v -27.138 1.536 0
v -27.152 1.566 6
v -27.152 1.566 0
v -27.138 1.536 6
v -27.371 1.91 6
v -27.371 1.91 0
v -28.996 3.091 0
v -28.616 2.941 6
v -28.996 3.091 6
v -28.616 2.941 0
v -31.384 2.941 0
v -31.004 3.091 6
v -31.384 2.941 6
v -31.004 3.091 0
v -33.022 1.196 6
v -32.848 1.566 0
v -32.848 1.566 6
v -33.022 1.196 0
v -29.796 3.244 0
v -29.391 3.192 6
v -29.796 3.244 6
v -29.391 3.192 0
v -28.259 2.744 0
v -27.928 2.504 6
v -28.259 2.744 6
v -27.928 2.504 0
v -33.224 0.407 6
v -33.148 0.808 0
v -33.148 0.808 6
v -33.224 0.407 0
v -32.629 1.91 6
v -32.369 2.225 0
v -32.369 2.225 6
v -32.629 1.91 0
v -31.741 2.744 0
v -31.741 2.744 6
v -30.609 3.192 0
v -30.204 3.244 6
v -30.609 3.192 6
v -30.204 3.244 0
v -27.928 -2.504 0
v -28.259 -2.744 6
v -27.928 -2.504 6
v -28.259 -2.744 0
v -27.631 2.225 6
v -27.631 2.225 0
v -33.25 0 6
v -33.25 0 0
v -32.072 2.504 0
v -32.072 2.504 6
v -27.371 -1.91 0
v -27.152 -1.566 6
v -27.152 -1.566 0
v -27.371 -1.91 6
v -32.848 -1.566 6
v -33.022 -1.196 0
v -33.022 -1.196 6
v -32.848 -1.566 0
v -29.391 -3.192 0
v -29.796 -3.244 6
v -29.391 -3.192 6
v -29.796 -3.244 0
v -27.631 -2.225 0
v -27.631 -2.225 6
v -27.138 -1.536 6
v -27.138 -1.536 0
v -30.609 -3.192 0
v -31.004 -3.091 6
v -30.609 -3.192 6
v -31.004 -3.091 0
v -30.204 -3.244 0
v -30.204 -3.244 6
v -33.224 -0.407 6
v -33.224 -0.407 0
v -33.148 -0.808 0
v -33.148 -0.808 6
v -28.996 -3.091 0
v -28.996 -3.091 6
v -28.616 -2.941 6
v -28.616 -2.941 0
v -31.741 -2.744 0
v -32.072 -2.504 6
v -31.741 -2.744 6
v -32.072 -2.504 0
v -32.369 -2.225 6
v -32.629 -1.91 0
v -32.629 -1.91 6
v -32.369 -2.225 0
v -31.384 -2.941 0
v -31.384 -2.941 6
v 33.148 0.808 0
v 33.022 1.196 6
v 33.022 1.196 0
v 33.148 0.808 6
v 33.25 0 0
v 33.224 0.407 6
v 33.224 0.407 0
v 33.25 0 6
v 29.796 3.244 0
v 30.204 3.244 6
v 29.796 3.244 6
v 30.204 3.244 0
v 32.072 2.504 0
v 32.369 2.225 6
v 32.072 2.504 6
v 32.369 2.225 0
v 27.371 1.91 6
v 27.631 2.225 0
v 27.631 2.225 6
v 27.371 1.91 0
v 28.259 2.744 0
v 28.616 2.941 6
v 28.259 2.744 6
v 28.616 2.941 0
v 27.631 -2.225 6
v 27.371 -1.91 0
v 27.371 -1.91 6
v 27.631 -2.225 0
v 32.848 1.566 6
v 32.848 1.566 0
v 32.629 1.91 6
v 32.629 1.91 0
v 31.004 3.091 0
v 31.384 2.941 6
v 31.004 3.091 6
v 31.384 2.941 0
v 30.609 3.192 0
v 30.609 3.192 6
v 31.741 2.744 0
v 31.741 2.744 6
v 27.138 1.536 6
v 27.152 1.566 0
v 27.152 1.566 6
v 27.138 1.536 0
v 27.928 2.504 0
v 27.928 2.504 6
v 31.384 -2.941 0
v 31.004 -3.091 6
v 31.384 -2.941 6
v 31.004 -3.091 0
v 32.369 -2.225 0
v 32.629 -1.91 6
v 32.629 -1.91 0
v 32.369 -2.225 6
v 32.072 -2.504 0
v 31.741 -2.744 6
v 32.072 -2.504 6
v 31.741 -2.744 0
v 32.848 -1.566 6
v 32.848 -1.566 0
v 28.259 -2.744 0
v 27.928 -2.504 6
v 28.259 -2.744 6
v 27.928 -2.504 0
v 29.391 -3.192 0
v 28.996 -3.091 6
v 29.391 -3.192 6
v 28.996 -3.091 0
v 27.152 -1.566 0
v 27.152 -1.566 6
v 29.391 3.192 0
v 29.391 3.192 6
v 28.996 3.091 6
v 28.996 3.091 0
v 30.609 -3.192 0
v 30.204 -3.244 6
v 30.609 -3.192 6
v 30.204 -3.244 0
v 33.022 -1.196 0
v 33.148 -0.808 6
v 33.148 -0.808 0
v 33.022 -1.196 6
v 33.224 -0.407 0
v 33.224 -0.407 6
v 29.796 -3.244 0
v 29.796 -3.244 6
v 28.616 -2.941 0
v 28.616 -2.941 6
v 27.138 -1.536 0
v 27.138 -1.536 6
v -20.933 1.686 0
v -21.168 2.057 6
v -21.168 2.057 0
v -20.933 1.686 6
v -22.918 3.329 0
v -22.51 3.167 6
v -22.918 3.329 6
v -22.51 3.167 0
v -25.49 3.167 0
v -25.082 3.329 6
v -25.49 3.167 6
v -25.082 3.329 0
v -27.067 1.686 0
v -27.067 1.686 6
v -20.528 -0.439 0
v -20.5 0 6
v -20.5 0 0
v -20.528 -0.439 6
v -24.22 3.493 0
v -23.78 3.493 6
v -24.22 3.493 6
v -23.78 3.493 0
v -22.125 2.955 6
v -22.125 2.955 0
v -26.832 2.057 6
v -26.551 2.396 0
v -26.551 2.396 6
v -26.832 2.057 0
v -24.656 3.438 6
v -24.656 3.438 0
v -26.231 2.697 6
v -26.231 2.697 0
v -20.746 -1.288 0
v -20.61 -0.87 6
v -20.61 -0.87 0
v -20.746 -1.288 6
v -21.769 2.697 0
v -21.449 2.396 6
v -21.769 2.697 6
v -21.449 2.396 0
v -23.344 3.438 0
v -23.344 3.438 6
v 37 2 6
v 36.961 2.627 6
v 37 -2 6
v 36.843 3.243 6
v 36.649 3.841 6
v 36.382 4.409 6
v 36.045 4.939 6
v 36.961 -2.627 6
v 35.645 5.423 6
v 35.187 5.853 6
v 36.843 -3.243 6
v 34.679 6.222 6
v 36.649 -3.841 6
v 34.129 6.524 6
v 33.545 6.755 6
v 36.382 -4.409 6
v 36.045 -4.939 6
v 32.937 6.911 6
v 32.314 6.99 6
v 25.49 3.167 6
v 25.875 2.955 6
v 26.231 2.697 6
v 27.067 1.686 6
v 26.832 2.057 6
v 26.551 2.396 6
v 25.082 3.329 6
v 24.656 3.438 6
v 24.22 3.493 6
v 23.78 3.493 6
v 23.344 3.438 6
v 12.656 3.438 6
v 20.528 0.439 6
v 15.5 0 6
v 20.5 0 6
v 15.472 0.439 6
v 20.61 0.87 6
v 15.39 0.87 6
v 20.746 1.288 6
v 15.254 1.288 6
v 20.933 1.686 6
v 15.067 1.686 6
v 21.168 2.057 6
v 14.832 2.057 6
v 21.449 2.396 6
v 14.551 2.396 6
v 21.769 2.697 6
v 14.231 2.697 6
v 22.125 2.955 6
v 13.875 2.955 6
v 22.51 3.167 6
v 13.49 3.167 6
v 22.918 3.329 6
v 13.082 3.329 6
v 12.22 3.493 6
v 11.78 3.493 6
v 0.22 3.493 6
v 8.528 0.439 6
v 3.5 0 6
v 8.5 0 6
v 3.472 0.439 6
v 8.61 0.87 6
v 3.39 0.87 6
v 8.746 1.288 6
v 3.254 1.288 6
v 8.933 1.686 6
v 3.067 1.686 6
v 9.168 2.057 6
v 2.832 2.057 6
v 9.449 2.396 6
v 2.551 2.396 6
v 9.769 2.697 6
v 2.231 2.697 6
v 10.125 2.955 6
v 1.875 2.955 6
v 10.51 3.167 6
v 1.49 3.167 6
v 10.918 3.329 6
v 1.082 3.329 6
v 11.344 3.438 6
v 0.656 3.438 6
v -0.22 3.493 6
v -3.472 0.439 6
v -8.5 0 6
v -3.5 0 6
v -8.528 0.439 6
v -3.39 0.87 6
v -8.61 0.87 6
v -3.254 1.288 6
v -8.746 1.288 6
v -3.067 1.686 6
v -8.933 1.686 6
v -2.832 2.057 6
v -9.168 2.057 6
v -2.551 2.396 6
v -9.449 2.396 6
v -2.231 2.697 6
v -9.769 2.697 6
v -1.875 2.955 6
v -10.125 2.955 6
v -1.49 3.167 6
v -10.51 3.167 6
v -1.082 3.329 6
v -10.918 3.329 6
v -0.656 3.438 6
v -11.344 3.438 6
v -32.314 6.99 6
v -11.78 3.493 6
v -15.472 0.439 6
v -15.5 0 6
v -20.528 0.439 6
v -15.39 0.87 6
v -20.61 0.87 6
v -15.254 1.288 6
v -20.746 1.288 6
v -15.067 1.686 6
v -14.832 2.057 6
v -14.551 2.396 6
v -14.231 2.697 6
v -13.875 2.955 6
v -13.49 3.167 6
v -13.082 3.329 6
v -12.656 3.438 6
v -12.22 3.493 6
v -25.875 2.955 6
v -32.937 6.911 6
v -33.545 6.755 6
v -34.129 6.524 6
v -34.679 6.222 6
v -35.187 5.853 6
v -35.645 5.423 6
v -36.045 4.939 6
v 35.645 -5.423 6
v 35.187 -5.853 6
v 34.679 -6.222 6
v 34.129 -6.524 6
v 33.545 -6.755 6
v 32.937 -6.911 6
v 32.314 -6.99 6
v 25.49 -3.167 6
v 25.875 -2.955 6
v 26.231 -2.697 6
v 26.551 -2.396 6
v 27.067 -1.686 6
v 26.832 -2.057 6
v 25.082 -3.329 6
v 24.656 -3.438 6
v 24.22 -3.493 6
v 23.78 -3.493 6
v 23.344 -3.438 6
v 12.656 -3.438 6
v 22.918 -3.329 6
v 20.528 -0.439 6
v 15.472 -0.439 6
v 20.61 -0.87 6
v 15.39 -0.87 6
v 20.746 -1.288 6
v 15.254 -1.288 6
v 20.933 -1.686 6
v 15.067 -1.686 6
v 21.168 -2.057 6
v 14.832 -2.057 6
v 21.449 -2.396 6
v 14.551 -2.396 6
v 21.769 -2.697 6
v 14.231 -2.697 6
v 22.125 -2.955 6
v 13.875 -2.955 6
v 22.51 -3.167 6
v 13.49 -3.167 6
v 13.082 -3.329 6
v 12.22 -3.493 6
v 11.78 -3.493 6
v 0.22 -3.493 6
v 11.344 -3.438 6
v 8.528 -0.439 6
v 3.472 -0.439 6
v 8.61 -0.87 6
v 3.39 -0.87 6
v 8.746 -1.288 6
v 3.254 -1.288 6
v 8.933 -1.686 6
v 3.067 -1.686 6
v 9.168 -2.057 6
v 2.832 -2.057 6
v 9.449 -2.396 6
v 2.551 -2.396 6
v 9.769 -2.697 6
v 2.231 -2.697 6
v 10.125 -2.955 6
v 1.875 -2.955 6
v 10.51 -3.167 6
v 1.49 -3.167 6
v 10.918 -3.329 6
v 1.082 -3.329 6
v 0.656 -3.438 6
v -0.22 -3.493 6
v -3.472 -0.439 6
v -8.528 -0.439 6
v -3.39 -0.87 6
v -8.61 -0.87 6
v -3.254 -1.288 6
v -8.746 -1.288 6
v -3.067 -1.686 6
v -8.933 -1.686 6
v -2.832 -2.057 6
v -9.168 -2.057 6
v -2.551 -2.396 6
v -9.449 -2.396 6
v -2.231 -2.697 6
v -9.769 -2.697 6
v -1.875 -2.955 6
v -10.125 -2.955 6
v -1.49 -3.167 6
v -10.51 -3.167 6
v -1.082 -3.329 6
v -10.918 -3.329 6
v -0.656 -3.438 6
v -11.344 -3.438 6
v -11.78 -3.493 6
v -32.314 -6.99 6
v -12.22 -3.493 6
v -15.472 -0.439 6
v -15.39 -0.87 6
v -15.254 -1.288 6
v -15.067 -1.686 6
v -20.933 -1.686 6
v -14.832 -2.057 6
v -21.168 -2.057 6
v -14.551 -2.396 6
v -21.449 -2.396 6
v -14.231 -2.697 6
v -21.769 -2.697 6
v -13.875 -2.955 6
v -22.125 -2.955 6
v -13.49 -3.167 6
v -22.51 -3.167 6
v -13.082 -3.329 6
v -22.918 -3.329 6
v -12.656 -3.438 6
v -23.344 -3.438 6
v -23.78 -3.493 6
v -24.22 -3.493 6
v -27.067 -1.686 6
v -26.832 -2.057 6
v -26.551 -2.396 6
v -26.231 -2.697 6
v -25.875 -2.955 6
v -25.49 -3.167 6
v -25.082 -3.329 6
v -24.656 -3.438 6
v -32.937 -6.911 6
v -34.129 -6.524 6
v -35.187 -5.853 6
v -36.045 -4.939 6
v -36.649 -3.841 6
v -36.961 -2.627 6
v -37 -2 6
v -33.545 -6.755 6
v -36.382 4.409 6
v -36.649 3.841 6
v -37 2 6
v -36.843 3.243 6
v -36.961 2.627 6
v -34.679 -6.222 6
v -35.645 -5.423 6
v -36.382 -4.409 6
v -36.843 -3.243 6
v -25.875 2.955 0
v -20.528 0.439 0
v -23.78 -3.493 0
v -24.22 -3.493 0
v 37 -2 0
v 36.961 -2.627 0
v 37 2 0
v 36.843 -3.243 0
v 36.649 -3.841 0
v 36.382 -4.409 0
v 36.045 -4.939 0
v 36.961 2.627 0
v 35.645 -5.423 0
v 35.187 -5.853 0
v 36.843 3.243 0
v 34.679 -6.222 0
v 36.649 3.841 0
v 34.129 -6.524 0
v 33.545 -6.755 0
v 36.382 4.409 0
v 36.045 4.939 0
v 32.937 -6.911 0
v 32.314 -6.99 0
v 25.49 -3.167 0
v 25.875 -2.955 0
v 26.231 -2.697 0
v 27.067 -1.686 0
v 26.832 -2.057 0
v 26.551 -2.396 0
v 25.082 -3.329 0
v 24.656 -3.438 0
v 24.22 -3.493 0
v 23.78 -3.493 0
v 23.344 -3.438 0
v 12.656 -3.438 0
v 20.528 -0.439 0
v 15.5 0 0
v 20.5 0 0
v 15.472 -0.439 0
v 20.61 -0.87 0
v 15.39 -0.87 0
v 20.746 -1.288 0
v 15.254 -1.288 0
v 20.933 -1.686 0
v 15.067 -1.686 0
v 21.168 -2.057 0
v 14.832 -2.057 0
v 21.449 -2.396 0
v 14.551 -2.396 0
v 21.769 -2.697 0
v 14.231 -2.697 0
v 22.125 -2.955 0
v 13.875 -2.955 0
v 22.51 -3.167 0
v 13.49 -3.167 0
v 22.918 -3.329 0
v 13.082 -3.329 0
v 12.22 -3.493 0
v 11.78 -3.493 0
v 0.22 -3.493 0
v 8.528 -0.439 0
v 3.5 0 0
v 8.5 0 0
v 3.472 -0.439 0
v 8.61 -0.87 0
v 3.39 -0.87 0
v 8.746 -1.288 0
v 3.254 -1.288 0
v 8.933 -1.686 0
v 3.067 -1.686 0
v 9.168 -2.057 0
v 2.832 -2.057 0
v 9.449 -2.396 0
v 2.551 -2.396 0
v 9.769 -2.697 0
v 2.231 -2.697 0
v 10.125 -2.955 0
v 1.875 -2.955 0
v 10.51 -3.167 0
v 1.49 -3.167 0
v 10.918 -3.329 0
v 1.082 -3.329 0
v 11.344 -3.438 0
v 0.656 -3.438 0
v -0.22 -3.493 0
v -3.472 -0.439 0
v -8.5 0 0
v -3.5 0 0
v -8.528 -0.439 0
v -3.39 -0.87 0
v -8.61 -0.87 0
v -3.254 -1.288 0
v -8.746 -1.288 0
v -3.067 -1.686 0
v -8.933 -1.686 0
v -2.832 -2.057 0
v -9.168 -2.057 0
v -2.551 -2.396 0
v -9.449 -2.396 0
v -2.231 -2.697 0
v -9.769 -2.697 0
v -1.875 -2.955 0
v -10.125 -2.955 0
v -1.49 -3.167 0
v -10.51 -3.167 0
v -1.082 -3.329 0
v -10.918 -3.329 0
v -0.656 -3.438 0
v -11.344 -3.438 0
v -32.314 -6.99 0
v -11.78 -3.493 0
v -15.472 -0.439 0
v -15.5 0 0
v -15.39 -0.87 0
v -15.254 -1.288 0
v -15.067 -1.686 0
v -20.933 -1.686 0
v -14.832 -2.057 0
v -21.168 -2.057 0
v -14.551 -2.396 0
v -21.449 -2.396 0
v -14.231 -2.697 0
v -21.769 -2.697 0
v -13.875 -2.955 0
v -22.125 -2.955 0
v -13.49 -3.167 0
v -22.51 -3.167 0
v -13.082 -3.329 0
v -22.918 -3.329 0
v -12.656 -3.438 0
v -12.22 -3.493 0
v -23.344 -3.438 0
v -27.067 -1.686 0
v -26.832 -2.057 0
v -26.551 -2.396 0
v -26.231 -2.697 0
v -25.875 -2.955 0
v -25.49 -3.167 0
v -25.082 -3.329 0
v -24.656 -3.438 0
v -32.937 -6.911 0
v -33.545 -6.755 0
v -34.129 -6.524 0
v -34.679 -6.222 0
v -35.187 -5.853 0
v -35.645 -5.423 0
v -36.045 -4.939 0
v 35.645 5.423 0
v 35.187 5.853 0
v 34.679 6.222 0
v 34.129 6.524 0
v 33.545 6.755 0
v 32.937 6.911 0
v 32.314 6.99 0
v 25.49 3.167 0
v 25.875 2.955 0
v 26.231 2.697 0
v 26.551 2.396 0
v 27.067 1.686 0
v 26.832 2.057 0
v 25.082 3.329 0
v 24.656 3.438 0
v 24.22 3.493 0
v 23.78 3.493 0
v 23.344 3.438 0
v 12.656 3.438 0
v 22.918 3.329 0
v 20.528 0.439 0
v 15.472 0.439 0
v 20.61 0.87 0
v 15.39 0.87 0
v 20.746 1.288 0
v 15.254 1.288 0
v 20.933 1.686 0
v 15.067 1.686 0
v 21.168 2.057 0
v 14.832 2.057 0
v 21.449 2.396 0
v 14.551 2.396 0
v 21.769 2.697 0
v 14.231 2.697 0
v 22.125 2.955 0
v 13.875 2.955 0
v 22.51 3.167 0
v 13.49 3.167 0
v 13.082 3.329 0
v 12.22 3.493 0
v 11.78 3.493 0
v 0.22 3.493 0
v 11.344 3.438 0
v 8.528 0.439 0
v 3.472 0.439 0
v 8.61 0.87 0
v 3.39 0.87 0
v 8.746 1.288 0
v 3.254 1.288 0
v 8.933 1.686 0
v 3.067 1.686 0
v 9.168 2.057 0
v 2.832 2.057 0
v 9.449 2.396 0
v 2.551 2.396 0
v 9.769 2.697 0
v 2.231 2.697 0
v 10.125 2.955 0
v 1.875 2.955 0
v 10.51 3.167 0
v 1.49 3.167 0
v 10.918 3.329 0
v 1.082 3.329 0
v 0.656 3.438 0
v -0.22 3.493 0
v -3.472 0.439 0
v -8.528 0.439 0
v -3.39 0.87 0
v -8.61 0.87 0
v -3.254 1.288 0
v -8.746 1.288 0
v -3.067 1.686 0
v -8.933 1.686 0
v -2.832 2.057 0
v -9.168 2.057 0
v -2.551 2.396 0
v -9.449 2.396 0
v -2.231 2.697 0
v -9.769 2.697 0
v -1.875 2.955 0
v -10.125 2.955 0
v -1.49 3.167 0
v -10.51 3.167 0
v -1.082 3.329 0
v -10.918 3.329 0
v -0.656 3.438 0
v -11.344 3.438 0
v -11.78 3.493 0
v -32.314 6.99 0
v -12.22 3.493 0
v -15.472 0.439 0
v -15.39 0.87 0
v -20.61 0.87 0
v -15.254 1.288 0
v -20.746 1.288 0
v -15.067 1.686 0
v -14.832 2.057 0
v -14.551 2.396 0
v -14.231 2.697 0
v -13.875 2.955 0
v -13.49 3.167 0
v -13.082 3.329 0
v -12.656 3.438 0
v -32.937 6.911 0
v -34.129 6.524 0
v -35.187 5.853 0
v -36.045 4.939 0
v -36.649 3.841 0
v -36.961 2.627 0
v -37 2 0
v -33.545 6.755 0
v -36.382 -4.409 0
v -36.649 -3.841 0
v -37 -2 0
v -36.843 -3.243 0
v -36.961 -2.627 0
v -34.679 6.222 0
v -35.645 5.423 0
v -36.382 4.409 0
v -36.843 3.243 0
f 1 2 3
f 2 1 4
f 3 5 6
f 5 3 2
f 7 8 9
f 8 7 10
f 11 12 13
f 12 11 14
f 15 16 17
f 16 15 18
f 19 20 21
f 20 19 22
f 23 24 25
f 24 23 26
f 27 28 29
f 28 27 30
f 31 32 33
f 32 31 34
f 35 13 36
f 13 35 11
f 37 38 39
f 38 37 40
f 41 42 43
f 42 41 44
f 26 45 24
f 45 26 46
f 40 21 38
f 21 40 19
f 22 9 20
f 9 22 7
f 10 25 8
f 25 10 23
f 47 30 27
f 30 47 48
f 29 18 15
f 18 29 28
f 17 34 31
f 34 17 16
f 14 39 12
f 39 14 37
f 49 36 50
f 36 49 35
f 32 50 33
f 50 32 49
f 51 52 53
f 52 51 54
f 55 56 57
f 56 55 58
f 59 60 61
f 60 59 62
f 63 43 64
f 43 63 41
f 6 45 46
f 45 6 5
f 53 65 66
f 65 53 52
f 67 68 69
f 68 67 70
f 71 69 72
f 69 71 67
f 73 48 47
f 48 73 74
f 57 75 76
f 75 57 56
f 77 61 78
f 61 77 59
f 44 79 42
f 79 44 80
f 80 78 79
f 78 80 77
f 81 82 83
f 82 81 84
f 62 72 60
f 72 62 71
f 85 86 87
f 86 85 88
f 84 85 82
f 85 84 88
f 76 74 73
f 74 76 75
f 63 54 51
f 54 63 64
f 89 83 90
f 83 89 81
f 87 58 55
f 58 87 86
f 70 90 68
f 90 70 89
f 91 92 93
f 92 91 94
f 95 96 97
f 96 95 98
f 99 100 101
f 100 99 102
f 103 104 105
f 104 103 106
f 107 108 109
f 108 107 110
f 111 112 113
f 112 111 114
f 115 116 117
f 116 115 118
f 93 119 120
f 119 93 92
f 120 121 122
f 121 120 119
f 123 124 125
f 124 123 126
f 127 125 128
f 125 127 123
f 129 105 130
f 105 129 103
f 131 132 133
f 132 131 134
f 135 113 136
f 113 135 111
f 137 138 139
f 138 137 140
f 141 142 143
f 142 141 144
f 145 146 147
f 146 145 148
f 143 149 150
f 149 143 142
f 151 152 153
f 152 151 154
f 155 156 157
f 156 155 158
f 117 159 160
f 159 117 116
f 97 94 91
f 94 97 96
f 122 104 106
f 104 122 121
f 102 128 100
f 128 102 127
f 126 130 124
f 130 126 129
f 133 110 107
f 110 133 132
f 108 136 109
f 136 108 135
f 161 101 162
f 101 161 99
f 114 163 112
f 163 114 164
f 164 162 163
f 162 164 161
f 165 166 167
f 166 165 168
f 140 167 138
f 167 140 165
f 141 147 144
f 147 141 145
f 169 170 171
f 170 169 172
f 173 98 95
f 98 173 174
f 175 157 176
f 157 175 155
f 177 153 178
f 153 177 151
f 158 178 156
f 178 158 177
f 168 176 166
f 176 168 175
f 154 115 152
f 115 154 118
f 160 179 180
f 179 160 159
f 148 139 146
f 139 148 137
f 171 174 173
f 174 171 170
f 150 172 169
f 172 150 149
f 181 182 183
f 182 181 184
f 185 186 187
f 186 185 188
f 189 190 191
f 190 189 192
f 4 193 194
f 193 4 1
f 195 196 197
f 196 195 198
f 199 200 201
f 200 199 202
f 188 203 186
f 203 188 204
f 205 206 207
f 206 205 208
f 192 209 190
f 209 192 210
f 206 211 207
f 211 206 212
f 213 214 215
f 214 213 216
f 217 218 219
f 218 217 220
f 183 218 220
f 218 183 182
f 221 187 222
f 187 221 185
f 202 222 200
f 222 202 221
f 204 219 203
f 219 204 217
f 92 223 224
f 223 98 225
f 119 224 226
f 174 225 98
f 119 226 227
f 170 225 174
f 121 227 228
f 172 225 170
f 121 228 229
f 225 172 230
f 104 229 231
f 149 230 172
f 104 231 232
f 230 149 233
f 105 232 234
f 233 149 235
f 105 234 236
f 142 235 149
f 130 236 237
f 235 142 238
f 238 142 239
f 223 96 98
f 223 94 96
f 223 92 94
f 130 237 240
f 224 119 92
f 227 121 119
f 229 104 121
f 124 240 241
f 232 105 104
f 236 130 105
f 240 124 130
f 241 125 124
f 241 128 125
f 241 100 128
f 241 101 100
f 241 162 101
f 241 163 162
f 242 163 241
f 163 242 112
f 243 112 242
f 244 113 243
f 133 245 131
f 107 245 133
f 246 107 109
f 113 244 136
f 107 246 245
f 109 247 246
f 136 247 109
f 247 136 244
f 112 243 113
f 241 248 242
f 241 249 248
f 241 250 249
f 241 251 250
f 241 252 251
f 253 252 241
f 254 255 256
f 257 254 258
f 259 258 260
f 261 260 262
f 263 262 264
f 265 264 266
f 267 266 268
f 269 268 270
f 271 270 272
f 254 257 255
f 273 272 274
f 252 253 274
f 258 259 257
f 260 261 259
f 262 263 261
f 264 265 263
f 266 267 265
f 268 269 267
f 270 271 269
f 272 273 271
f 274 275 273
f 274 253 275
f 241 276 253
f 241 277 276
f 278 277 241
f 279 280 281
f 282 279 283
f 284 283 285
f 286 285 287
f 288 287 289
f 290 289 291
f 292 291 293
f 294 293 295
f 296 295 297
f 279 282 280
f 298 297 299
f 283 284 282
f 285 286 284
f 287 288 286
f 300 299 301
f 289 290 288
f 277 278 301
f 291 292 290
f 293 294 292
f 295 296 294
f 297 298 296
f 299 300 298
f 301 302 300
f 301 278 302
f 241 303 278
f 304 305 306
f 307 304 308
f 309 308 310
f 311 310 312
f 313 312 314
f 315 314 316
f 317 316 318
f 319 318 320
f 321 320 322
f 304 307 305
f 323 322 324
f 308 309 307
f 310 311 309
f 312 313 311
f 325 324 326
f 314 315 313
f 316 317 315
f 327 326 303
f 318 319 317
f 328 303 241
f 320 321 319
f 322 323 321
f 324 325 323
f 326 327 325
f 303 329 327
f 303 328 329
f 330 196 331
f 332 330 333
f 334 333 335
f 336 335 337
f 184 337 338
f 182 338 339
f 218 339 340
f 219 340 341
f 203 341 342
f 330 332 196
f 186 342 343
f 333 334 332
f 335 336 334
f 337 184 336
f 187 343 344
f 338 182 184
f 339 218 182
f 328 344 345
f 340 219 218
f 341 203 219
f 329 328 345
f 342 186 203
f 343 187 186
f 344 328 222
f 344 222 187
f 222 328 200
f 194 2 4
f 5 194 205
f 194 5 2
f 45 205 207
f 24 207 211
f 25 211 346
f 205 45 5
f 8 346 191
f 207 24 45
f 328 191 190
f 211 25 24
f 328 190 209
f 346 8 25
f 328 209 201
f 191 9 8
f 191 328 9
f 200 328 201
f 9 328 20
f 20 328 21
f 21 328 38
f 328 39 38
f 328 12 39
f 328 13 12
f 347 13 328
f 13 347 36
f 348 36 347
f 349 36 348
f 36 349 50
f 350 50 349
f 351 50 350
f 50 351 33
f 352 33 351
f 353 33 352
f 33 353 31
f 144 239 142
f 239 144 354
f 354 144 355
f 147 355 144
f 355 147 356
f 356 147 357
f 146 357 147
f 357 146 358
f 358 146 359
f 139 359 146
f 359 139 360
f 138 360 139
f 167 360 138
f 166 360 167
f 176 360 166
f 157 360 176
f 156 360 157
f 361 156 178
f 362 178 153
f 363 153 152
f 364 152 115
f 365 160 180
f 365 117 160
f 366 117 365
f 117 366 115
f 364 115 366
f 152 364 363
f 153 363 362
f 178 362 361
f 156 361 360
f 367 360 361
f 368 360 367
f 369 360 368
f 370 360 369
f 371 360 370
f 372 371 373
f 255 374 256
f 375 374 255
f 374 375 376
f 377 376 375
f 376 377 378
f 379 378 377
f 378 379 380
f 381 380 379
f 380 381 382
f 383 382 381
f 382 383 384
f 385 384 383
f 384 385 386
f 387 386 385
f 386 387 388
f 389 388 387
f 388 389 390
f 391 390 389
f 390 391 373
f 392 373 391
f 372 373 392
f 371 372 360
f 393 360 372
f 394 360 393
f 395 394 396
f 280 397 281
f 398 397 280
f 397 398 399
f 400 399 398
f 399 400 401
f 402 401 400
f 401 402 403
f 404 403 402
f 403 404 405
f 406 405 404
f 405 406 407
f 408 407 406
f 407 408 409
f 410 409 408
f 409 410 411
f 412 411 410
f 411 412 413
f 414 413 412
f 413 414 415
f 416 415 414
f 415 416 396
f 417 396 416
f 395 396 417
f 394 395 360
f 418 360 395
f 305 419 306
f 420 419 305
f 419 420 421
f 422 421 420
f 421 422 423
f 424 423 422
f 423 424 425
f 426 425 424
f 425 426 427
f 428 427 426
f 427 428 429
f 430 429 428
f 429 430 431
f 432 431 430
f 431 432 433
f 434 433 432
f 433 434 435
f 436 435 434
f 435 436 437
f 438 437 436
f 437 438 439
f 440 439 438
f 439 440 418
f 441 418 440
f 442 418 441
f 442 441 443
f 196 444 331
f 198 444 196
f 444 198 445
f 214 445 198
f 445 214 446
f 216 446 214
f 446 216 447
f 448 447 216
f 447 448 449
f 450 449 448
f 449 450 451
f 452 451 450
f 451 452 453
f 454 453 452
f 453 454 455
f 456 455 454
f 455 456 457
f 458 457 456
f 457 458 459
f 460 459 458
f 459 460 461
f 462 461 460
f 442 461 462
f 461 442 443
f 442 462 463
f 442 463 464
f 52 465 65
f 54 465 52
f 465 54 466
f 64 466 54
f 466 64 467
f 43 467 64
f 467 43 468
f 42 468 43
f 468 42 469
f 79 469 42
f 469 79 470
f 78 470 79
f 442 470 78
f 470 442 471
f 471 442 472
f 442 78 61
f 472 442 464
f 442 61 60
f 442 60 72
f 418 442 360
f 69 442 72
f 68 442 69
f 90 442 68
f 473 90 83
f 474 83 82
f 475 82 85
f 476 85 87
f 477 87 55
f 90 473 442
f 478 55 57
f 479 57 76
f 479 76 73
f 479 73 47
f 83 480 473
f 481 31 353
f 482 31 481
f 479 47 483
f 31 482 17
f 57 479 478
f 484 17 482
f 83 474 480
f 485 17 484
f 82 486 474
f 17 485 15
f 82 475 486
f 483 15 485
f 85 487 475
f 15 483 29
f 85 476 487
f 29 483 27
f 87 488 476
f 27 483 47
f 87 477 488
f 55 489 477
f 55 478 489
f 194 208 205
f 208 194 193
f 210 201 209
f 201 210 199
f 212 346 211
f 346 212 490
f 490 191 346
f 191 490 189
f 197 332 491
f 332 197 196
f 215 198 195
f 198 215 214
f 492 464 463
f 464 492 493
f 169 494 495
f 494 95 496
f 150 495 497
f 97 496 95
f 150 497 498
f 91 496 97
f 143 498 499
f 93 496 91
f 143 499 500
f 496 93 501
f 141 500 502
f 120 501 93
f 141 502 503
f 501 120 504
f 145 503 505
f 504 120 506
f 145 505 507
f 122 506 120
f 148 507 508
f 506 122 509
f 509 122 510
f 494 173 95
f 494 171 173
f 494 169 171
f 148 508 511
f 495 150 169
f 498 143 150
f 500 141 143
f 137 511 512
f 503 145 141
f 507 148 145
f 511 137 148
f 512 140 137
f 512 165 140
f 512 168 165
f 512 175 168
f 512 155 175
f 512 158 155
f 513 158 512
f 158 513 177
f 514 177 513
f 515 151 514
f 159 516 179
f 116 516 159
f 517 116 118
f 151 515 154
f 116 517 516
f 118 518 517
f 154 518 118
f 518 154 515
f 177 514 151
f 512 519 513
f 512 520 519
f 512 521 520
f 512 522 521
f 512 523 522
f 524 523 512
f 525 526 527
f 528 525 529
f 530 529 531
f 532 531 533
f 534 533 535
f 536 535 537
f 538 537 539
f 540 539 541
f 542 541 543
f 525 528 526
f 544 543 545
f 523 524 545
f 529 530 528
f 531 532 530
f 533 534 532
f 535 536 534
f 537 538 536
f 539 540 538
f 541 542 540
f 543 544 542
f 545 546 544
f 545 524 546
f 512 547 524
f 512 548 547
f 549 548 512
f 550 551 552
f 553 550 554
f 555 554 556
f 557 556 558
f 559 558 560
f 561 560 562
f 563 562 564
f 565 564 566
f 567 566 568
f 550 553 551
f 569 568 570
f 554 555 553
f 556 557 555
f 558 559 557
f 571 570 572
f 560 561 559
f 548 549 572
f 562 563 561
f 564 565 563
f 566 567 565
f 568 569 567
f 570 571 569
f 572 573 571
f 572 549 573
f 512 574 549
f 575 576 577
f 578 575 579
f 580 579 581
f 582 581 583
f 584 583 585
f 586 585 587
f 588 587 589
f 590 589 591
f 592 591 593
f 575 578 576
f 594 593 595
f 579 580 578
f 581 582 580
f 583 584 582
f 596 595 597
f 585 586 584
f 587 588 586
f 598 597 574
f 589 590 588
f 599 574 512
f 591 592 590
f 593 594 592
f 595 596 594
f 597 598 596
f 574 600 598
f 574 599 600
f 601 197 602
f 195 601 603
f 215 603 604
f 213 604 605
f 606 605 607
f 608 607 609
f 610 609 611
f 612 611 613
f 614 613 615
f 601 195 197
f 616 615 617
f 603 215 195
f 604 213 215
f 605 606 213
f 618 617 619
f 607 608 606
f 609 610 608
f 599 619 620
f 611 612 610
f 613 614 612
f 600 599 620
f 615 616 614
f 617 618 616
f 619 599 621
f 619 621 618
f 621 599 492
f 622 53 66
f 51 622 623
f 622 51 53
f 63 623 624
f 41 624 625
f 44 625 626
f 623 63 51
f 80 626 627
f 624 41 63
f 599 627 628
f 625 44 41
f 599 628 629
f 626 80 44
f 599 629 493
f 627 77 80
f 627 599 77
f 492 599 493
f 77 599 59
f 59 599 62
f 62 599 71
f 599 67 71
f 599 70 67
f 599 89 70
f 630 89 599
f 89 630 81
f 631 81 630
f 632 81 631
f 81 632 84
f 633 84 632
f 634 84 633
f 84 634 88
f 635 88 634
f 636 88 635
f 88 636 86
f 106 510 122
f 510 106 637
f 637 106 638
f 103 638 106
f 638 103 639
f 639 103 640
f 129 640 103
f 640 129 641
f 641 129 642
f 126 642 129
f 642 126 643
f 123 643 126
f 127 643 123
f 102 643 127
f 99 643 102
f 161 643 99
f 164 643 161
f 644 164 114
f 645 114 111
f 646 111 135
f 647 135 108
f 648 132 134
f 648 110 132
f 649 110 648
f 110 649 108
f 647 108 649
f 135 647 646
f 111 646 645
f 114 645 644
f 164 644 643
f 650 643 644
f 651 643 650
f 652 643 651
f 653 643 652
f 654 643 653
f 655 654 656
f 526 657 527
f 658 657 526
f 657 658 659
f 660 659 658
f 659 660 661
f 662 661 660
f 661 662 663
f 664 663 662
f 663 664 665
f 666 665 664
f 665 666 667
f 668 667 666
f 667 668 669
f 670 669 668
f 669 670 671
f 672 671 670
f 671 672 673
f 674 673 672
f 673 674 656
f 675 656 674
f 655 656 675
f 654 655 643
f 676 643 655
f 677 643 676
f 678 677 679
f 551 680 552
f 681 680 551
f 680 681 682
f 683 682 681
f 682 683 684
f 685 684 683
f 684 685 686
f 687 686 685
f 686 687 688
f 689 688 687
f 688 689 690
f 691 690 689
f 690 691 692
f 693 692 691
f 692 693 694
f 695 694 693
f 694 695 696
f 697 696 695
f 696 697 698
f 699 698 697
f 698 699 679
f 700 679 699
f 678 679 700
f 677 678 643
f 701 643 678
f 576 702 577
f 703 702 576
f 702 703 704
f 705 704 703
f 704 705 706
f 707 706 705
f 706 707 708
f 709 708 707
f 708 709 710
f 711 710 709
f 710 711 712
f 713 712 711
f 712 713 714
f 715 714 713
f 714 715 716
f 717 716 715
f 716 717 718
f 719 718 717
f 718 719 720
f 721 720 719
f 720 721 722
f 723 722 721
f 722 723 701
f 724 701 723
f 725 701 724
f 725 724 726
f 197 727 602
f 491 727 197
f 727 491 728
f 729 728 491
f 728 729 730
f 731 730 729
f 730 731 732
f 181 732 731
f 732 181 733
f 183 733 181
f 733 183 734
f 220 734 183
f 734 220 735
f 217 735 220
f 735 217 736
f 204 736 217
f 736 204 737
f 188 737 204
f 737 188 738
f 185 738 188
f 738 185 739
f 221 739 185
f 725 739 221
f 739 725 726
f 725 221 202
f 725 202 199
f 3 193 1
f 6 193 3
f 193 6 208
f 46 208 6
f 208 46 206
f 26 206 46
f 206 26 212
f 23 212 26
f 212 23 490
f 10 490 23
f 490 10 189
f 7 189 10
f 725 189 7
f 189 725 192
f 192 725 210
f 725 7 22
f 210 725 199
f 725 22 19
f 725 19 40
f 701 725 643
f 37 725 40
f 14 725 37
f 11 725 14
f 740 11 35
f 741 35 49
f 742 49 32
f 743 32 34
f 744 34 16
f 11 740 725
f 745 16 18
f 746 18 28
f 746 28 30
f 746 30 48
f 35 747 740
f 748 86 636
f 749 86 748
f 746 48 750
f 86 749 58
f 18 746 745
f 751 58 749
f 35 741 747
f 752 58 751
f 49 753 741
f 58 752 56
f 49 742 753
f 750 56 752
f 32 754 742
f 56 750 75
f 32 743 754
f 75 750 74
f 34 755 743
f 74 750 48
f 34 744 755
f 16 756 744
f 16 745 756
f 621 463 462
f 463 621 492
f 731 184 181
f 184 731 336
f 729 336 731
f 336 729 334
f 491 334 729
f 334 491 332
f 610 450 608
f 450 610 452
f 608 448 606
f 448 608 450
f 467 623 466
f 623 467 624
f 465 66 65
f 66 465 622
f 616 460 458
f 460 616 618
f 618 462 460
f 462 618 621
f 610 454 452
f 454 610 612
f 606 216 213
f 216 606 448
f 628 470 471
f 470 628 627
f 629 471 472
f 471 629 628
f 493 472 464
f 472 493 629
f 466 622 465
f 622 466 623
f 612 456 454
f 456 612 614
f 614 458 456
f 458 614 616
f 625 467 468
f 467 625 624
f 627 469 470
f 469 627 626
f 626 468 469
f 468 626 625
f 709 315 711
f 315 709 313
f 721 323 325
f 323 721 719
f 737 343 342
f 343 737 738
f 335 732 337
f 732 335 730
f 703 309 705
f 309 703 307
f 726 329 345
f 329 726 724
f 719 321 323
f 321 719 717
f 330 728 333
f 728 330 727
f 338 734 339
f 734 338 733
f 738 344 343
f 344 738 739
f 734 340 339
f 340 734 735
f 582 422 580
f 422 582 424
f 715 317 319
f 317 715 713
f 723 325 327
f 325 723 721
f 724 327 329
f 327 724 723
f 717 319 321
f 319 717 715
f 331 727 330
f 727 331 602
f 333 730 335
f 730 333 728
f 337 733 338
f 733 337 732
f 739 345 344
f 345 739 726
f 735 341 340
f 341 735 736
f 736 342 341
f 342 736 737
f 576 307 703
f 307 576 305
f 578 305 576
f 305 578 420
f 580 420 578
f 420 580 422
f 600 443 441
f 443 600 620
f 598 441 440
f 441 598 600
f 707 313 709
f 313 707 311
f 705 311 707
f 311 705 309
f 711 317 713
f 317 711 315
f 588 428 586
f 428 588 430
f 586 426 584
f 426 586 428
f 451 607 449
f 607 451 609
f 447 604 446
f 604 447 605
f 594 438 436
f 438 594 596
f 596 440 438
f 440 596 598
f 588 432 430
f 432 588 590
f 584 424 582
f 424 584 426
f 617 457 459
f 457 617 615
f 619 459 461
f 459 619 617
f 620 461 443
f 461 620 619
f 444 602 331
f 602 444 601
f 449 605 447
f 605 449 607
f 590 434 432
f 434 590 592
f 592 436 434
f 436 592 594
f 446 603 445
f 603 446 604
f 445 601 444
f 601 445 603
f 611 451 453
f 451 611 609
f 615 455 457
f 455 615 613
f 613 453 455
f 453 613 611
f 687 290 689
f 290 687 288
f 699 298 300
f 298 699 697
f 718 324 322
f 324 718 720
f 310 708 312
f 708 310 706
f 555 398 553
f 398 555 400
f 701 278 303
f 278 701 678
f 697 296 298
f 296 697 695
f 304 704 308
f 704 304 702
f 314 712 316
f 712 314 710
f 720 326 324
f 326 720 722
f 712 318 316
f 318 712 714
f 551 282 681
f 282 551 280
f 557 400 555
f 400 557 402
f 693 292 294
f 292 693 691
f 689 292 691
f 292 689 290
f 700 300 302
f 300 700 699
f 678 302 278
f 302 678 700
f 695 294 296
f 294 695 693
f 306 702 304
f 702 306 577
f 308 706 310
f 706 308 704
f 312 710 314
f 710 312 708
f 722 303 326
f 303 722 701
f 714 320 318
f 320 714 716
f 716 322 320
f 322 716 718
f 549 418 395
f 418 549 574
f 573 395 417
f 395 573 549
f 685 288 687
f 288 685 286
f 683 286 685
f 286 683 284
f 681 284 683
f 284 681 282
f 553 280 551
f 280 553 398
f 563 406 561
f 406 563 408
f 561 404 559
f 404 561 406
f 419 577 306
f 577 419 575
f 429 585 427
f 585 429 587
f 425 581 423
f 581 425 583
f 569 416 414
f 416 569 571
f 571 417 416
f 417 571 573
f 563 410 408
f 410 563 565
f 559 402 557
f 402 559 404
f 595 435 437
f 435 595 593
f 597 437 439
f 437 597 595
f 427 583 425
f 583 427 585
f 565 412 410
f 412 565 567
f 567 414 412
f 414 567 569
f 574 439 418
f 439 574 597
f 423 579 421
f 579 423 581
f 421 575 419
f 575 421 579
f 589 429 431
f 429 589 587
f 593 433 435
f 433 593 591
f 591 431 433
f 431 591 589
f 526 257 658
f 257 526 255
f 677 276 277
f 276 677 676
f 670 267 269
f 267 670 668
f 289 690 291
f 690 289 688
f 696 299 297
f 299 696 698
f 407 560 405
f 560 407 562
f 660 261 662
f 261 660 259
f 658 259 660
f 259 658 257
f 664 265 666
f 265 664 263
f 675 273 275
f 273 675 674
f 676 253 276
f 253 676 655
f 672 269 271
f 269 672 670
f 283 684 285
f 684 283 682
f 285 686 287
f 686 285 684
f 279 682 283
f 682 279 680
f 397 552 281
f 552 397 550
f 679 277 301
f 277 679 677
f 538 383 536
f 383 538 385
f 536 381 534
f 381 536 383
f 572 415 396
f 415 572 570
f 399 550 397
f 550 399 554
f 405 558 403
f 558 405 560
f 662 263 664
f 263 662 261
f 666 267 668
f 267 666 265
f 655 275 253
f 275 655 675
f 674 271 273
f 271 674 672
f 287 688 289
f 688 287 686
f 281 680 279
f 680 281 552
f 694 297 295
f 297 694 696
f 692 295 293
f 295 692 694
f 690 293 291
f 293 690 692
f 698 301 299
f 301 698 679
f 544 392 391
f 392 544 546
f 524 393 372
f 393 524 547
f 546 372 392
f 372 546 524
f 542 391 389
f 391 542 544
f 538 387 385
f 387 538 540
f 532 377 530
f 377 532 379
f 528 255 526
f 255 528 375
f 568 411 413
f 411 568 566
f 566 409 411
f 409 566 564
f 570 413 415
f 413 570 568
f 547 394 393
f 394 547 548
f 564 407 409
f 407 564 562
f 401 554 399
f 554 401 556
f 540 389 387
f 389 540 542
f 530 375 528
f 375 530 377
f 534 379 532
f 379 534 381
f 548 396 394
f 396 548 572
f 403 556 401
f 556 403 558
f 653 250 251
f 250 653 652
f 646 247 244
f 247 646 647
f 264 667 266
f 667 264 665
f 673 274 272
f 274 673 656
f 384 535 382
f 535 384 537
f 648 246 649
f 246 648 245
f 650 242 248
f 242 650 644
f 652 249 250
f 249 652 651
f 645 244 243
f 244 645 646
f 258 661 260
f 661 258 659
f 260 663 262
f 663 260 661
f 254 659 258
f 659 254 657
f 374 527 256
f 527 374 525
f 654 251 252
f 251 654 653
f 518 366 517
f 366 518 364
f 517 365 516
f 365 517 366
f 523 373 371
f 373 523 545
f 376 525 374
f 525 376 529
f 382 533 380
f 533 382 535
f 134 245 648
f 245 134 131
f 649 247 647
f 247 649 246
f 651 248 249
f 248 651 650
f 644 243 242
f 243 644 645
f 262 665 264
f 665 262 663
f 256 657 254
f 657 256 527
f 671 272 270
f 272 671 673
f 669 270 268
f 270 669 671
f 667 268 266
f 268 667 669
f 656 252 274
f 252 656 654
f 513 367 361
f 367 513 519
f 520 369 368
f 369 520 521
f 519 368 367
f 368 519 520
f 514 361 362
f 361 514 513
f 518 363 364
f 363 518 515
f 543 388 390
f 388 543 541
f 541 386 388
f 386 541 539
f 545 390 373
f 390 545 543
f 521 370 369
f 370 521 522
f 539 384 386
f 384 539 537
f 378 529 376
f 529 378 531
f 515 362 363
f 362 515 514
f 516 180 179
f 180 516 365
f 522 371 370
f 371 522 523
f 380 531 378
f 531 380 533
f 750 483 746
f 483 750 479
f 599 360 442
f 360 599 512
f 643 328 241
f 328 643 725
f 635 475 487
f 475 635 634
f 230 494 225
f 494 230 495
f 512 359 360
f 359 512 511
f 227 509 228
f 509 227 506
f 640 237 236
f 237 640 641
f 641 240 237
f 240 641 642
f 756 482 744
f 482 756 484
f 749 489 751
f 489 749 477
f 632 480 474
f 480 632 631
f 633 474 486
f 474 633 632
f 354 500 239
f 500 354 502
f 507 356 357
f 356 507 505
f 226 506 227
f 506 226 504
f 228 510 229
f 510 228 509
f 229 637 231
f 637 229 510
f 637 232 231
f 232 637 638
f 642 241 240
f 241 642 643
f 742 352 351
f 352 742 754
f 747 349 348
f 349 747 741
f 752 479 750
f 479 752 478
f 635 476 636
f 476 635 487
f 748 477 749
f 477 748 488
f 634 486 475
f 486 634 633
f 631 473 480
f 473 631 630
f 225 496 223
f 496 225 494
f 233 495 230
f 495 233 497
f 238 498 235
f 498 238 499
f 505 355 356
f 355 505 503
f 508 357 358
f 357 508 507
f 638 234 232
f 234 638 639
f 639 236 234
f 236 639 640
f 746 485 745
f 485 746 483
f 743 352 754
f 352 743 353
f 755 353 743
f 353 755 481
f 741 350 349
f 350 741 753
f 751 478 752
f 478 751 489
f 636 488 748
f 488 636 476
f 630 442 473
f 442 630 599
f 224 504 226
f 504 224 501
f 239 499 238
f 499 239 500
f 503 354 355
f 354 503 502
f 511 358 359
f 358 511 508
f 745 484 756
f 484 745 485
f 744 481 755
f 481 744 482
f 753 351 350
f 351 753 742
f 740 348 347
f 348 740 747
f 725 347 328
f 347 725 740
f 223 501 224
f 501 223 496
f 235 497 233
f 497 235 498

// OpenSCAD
$fn = 50;


difference() {
	union() {
		hull() {
			translate(v = [-32.0000000000, 2.0000000000, 0]) {
				cylinder(h = 6, r = 5);
			}
			translate(v = [32.0000000000, 2.0000000000, 0]) {
				cylinder(h = 6, r = 5);
			}
			translate(v = [-32.0000000000, -2.0000000000, 0]) {
				cylinder(h = 6, r = 5);
			}
			translate(v = [32.0000000000, -2.0000000000, 0]) {
				cylinder(h = 6, r = 5);
			}
		}
	}
	union() {
		#translate(v = [-30.0000000000, 0.0000000000, -100.0000000000]) {
			cylinder(h = 200, r = 3.2500000000);
		}
		#translate(v = [-30.0000000000, 0.0000000000, -100.0000000000]) {
			cylinder(h = 200, r = 3.2500000000);
		}
		#translate(v = [30.0000000000, 0.0000000000, -100.0000000000]) {
			cylinder(h = 200, r = 3.2500000000);
		}
		#translate(v = [30.0000000000, 0.0000000000, -100.0000000000]) {
			cylinder(h = 200, r = 3.2500000000);
		}
		#translate(v = [-24.0000000000, 0, 0]) {
			cylinder(h = 6, r = 3.5000000000);
		}
		#translate(v = [-12.0000000000, 0, 0]) {
			cylinder(h = 6, r = 3.5000000000);
		}
		#cylinder(h = 6, r = 3.5000000000);
		#translate(v = [12.0000000000, 0, 0]) {
			cylinder(h = 6, r = 3.5000000000);
		}
		#translate(v = [24.0000000000, 0, 0]) {
			cylinder(h = 6, r = 3.5000000000);
		}
	}
}
